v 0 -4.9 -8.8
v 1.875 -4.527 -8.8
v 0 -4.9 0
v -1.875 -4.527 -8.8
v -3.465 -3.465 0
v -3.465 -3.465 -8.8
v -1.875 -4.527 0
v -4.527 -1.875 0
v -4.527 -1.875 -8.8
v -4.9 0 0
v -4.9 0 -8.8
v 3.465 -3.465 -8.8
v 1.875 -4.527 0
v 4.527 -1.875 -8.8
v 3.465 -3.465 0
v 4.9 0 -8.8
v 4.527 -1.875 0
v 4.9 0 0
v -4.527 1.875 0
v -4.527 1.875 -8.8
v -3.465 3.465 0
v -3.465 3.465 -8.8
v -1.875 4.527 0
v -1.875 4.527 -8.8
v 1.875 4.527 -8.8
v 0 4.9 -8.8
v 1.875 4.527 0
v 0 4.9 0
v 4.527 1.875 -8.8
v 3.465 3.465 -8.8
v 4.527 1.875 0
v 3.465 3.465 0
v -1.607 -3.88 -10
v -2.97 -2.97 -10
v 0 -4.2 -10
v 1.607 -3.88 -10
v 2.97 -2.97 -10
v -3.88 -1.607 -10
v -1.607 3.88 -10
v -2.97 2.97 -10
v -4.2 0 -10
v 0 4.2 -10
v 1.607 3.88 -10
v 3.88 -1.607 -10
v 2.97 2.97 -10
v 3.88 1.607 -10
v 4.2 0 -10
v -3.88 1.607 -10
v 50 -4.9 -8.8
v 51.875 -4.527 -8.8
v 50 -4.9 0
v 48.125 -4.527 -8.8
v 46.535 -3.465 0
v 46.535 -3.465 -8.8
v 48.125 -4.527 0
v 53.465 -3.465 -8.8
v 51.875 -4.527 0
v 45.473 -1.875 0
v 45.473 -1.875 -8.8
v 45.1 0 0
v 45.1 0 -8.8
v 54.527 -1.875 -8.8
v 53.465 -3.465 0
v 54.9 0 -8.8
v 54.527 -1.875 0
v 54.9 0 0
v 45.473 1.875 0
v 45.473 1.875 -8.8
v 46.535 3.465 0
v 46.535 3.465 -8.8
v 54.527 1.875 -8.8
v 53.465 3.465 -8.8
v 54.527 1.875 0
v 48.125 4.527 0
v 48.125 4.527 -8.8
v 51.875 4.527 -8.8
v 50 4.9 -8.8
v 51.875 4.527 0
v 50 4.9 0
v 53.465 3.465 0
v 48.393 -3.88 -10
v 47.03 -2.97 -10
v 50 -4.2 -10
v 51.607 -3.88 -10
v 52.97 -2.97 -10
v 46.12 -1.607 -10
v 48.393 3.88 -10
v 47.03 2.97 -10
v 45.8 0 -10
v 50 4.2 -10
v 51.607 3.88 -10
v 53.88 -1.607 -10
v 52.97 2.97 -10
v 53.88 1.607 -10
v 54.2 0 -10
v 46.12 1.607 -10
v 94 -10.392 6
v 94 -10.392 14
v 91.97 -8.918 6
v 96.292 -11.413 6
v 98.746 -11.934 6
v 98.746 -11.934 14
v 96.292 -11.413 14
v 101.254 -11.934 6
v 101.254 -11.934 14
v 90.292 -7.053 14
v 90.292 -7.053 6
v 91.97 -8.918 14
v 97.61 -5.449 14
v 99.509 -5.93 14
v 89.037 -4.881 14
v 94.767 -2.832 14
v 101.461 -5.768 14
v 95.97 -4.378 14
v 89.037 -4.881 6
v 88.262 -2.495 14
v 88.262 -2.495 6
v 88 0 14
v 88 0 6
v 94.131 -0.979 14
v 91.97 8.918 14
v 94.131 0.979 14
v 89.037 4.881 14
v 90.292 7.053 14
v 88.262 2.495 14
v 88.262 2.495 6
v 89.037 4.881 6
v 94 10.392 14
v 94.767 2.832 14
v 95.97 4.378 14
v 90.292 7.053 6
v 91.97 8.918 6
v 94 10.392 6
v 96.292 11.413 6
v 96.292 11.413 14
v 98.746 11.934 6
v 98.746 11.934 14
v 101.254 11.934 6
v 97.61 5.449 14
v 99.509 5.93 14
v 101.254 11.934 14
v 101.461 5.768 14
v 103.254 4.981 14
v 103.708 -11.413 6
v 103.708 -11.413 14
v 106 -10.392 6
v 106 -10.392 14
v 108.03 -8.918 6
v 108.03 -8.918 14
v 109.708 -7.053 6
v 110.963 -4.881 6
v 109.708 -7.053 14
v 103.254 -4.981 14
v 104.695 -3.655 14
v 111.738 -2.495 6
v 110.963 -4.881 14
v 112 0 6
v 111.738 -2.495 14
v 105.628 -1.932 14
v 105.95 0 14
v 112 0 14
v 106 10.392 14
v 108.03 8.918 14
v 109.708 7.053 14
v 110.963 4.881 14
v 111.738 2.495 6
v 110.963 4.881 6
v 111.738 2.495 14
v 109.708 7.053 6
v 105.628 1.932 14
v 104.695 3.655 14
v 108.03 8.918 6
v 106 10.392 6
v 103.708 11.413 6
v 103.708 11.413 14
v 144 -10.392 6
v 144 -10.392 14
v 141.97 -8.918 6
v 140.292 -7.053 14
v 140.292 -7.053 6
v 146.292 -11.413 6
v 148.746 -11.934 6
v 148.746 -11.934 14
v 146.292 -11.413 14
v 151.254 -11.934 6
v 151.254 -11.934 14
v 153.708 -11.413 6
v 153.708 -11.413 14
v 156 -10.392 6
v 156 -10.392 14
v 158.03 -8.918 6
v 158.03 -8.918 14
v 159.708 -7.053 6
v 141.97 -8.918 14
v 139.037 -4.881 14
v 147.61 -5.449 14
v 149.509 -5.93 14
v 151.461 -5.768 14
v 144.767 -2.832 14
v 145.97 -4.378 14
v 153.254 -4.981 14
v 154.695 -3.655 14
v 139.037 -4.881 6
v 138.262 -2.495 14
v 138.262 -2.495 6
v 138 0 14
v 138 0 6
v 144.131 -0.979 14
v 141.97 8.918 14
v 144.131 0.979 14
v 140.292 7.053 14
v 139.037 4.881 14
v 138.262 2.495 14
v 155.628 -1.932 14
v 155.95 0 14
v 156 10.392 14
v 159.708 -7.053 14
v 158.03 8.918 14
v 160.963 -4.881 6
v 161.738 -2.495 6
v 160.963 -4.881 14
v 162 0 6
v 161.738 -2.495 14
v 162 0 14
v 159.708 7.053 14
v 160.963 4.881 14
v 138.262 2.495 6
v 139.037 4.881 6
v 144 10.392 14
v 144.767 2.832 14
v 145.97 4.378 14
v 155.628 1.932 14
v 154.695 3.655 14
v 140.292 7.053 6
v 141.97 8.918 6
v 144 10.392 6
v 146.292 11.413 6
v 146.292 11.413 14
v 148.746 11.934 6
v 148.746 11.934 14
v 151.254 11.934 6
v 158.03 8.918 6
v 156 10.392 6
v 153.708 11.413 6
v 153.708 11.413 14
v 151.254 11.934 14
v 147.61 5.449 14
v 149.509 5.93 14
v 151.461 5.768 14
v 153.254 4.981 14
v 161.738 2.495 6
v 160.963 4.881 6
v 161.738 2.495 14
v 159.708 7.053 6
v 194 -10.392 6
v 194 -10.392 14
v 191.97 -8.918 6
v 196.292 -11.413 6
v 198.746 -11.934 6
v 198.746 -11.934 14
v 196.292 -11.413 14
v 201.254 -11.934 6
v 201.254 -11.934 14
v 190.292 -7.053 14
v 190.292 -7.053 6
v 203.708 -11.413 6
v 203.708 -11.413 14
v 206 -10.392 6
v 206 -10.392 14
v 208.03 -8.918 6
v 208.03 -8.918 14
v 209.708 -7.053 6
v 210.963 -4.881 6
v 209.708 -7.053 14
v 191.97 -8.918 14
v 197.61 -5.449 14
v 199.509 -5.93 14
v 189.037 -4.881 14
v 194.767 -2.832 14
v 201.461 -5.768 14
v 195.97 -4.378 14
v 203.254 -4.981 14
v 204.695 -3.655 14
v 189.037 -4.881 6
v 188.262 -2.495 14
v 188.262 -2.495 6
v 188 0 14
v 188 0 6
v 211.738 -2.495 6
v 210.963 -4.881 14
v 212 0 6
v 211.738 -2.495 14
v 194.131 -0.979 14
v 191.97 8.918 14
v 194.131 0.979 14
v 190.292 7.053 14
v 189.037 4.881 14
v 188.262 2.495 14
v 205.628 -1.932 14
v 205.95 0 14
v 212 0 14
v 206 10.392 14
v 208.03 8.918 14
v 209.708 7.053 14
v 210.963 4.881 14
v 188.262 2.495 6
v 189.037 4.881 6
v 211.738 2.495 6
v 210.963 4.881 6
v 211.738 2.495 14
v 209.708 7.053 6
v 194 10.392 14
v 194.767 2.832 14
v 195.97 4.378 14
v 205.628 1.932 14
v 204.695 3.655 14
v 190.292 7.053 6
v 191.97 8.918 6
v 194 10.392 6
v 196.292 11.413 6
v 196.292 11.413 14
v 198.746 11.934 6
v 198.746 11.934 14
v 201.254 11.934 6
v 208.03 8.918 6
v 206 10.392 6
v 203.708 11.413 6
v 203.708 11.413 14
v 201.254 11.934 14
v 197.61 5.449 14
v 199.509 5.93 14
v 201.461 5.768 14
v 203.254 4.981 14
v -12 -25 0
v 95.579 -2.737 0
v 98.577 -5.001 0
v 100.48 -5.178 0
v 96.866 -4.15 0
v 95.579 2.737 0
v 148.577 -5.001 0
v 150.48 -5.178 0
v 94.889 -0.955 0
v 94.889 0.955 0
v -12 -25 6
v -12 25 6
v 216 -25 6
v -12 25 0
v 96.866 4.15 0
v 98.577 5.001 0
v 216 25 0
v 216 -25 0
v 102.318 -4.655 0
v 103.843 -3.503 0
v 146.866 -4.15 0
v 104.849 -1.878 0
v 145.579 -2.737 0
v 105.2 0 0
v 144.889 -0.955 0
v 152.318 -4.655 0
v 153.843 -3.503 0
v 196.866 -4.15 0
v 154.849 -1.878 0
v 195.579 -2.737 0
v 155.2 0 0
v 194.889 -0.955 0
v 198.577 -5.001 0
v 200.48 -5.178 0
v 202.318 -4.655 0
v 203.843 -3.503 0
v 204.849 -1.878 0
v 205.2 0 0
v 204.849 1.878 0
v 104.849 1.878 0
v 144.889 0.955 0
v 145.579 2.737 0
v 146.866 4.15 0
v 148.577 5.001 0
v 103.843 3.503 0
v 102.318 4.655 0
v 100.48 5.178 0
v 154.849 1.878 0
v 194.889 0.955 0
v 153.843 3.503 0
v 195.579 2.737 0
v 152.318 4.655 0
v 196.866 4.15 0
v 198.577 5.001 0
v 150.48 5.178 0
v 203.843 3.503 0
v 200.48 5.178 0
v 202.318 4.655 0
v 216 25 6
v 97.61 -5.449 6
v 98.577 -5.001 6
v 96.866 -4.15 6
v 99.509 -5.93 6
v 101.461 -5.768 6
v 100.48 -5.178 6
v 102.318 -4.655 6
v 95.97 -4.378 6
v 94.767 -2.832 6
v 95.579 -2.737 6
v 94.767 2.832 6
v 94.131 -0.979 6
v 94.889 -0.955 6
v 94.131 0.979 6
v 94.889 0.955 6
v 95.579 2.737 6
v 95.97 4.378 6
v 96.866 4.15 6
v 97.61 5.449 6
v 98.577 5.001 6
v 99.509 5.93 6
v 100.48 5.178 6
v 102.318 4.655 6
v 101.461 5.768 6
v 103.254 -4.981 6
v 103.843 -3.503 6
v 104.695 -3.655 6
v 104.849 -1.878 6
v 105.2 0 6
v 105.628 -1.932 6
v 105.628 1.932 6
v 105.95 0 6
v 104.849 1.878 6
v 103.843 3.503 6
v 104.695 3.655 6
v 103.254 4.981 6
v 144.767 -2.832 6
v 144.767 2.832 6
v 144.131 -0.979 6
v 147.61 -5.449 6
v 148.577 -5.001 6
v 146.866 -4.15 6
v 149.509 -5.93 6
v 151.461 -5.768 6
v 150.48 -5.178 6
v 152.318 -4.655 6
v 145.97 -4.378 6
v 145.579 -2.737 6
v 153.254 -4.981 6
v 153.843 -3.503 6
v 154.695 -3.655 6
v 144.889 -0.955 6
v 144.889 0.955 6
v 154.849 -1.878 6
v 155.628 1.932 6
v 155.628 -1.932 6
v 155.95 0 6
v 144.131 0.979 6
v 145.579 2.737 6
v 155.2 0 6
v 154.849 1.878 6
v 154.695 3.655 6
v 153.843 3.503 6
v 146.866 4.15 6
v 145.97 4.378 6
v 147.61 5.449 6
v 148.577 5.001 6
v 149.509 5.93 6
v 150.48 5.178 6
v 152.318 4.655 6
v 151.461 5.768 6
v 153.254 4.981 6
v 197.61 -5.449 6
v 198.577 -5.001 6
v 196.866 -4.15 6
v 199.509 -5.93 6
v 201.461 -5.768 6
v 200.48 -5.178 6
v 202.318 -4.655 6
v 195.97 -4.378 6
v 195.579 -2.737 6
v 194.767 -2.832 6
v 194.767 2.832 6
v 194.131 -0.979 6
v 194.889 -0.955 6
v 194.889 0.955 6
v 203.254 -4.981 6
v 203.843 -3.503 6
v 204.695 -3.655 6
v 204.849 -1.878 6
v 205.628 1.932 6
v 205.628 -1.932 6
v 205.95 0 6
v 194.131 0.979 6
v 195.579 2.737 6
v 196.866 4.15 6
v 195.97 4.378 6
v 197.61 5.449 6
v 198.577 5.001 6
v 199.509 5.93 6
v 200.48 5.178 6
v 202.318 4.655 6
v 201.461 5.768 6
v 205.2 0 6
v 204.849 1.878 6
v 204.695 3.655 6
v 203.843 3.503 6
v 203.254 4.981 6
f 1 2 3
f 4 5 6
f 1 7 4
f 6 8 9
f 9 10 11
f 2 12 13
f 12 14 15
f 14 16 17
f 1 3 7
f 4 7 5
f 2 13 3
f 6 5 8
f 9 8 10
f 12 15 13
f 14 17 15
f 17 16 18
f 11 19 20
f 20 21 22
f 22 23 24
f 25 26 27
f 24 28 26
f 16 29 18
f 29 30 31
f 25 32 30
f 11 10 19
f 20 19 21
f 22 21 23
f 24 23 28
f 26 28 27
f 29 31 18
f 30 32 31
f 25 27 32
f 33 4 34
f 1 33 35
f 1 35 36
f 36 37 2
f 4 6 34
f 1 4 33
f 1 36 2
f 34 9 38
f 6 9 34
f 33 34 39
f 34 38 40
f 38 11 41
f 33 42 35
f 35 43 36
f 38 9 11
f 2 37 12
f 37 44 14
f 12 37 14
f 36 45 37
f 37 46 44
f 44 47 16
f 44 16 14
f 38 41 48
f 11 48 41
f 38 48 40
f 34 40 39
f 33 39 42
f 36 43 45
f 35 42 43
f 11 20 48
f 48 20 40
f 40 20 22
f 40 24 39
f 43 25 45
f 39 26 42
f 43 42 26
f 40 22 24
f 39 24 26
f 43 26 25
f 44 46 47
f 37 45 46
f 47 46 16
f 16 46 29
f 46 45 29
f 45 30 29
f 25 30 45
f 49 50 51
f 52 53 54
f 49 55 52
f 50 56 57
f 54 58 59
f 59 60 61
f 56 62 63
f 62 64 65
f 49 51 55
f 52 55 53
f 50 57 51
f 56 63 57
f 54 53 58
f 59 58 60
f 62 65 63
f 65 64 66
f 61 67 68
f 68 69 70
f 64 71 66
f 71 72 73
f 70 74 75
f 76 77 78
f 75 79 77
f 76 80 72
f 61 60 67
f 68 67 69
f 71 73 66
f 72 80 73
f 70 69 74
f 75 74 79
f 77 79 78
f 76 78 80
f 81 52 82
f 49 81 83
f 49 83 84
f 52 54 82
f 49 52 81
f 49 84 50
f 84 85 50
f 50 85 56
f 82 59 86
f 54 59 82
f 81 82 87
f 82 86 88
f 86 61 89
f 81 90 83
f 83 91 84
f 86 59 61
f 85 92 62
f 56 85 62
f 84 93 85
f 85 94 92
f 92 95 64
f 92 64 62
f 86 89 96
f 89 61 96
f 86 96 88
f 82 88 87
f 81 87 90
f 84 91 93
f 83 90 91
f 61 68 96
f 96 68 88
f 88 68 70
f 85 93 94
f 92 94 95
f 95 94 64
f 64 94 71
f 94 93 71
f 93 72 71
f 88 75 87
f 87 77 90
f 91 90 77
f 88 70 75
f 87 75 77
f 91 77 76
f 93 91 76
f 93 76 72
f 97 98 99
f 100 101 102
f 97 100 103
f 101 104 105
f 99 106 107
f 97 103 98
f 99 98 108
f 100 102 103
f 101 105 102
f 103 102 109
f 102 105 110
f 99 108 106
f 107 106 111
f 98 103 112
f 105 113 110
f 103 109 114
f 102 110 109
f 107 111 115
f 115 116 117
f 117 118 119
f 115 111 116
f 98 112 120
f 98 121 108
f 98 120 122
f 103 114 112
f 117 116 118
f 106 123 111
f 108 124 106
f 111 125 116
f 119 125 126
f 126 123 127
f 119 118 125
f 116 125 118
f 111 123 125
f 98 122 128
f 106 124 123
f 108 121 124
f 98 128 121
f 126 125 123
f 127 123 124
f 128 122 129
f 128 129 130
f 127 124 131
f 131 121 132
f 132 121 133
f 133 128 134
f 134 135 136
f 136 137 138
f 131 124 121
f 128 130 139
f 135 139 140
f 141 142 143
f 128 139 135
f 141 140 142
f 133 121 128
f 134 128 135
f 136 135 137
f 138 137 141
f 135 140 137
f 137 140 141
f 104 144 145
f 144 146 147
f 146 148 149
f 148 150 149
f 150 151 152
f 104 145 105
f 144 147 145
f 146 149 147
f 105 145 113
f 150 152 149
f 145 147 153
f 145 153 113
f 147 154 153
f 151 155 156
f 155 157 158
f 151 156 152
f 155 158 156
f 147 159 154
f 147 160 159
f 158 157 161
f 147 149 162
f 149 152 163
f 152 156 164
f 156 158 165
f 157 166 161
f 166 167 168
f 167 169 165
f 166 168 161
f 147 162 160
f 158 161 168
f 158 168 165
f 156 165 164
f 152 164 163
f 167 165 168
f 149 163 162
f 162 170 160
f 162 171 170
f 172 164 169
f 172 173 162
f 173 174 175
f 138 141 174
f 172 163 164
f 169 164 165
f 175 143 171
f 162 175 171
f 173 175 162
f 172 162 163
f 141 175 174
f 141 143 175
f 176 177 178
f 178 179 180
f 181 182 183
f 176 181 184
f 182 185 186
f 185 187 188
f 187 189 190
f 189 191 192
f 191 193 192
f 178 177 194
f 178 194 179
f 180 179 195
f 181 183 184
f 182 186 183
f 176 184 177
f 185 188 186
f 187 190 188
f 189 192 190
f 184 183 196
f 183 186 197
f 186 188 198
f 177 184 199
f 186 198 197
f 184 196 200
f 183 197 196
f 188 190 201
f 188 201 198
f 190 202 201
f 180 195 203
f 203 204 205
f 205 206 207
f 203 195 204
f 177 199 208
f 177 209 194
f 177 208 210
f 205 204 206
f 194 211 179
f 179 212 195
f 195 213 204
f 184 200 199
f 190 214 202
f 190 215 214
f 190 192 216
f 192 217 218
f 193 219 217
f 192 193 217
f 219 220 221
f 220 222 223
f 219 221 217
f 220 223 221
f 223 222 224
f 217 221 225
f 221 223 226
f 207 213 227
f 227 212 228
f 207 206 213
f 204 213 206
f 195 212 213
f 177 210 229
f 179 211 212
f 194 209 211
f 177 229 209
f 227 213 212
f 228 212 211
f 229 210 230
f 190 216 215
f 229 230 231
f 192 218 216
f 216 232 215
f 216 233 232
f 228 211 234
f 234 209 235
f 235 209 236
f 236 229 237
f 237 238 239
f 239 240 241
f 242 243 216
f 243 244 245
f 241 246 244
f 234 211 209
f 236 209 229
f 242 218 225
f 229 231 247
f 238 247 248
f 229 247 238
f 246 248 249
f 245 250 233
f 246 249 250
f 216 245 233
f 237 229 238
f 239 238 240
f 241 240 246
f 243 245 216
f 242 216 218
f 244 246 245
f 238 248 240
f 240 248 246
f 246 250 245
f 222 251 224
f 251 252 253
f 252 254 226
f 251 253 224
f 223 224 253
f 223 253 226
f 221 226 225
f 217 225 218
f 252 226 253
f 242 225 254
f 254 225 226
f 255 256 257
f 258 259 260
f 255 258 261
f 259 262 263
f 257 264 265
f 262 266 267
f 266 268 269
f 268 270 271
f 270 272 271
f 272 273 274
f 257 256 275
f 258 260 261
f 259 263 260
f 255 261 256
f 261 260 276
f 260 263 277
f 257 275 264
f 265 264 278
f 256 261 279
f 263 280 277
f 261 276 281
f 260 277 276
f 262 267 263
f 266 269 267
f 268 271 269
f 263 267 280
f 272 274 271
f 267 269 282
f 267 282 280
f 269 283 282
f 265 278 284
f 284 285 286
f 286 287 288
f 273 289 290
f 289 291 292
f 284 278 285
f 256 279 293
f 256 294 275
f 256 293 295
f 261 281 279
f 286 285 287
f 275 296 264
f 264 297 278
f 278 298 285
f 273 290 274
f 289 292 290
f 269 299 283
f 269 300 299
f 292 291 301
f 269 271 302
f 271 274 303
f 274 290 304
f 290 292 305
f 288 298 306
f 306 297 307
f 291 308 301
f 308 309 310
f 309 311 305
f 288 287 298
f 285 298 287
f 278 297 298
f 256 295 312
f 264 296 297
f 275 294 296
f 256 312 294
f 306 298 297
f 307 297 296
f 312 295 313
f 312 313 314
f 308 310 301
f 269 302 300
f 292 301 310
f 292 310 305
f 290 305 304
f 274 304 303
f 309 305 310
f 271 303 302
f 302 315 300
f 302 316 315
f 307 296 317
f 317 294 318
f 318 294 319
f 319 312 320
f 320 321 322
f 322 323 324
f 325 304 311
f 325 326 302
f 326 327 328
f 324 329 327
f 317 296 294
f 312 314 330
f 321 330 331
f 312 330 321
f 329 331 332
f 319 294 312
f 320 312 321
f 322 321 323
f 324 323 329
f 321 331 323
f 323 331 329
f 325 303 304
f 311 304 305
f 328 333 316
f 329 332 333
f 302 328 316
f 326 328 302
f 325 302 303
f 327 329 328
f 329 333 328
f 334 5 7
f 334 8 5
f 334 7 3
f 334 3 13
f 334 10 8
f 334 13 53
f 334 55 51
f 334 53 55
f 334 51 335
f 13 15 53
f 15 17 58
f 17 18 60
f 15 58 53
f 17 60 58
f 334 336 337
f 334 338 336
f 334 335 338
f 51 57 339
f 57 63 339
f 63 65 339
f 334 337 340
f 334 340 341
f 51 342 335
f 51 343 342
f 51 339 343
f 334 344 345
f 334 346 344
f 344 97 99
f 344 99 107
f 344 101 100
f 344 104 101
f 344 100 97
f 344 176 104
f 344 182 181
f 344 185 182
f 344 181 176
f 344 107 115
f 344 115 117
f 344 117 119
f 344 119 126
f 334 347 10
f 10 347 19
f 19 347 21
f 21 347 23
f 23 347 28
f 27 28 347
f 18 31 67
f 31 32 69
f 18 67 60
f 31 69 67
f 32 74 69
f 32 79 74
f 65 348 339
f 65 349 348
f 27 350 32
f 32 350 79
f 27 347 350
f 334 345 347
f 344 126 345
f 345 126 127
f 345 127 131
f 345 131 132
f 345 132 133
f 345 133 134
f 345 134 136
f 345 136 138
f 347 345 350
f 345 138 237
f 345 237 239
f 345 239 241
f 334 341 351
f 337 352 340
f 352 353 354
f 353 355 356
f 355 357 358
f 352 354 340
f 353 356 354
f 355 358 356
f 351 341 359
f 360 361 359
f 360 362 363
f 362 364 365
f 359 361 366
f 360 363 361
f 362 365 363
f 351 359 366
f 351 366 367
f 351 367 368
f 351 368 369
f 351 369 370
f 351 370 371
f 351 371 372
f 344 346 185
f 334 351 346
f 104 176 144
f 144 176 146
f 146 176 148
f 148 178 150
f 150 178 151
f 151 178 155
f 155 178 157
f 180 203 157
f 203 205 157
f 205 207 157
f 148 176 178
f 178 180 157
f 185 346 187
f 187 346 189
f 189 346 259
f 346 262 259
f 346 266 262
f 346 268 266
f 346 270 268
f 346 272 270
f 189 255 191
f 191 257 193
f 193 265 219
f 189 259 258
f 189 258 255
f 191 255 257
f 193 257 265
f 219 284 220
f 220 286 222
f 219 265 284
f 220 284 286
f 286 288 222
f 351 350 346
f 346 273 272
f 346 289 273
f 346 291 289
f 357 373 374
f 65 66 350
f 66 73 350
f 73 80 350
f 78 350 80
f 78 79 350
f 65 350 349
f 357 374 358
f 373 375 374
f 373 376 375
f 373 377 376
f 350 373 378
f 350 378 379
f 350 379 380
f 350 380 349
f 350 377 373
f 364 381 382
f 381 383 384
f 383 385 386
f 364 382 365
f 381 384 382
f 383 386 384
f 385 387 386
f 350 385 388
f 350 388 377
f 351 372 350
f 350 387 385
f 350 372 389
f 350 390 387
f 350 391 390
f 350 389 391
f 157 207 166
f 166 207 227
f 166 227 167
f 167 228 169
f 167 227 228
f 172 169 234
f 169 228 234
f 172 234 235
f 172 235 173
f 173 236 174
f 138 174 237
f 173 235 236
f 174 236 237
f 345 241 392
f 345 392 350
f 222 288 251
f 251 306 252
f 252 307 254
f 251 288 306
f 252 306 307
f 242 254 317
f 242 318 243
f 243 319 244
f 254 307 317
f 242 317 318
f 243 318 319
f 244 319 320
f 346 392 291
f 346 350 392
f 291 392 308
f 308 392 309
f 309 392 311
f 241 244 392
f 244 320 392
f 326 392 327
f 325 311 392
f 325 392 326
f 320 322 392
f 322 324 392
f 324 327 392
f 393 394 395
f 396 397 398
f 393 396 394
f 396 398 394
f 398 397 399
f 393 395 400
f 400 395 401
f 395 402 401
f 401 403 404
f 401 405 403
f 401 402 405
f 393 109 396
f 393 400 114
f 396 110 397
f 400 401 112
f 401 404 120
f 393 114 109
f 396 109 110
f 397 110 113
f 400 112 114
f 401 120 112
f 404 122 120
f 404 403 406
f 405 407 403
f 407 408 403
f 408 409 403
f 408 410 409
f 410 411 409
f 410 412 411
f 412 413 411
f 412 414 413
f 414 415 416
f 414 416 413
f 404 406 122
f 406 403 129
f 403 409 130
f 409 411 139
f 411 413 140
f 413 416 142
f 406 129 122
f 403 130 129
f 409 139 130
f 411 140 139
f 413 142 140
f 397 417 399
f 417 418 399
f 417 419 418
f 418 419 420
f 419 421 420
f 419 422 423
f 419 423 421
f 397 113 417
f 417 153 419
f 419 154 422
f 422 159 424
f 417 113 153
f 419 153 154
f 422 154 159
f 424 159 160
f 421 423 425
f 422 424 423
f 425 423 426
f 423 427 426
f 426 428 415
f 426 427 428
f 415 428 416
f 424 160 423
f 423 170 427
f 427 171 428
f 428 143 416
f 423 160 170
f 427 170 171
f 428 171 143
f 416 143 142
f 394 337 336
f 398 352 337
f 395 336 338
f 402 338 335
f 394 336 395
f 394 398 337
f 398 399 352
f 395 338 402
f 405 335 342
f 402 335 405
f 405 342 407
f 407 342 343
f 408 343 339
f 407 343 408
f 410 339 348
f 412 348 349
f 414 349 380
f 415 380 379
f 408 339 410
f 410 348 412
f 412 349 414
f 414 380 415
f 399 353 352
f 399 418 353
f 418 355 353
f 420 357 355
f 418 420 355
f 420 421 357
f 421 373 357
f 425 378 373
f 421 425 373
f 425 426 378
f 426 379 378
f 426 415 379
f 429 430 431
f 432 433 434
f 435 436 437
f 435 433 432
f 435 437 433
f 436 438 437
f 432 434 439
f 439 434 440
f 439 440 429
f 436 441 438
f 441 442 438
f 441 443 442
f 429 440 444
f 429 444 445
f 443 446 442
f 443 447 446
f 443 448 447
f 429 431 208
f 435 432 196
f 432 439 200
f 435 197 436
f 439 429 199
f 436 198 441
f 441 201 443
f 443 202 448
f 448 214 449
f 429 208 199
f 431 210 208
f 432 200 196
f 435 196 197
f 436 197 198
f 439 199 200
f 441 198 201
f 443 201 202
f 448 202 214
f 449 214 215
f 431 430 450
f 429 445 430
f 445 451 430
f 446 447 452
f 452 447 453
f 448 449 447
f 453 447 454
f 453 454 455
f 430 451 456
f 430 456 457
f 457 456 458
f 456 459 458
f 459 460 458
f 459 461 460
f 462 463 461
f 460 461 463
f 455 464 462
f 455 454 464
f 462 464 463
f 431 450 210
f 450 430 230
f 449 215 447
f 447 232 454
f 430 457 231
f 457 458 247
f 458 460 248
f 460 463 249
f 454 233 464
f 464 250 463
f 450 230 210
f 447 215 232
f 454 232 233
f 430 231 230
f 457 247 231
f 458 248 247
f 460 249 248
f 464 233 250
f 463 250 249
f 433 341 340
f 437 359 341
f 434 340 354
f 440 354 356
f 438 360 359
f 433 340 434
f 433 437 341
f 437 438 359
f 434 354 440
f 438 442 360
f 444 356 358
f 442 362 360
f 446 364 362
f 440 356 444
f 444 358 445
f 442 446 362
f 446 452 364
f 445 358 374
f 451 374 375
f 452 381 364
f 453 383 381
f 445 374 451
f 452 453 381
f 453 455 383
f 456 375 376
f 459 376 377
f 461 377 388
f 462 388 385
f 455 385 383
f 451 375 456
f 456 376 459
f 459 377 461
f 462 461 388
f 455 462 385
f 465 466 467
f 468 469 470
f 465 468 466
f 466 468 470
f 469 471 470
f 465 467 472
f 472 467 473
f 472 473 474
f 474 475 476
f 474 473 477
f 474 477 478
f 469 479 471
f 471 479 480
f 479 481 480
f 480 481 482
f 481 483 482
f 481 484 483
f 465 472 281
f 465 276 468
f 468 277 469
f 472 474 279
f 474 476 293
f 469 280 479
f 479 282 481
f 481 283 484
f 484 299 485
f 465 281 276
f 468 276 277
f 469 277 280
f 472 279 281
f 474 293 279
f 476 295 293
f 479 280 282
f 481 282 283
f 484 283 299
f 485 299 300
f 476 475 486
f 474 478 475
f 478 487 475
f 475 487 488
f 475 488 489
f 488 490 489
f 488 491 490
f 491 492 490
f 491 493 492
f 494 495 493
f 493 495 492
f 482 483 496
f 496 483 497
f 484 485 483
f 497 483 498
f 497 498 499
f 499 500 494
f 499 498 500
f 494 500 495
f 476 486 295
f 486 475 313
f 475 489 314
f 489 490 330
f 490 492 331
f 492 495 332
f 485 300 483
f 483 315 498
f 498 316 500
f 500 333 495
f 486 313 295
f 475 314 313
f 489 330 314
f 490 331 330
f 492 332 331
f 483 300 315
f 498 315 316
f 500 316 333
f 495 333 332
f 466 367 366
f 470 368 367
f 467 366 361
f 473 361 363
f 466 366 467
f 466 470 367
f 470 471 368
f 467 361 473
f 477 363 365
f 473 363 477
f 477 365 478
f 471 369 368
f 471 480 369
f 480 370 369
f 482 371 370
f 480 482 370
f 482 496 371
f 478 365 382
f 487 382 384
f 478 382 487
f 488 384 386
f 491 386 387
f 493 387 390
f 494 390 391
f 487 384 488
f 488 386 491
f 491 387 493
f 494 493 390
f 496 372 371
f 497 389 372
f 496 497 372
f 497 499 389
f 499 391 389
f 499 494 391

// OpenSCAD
// ============================================================================
//  INDEXING BAR — repeats the 50mm hole pattern along a row or column
//  For drilling the hole grid of an 18mm plywood pegboard panel.
//
//  Pattern assumed: 10mm holes on a 50mm grid.
//
//  Coordinate convention (matches the other jigs in this folder):
//    - Panel top surface  = z = 0   (bar base sits on this plane)
//    - Bar axis            = local +x   (bar width along y, centred on y = 0)
//    - Locating pins hang BELOW the base (z < 0) and drop into drilled holes.
//
//  Layout along the bar — five stations on one 50mm pitch:
//      x = 0      locating pin 1
//      x = 50     locating pin 2
//      x = 100    drill guide 1
//      x = 150    drill guide 2
//      x = 200    drill guide 3
//
//  How it works (row-major example):
//    1. Drop the two pins into two adjacent holes that are already drilled
//       (the seed pair from the corner jig or the row seeder).
//    2. Drill through the three bush-guided holes -> three new holes.
//    3. Lift the bar, move it forward, and re-seat the pins in the TWO MOST
//       RECENTLY DRILLED holes (i.e. leapfrog 150mm each step).
//    4. Repeat to the end of the row. Flip the bar end-for-end to walk the
//       other direction; rotate it 90 deg to index a column instead.
//
//  NOTE: needs ~230mm of print bed in X for 3 guides (~180mm for 2).
//  All dimensions are parameters below.
//
//  PRINT: FLIP the part upside-down before slicing so the pins point UP.
//  Pins then print last as clean vertical posts — no supports, no brim
//  needed for the pins (a brim is still cheap insurance on the bosses).
// ============================================================================

// ------------------------- PATTERN -------------------------
pitch   = 50;    // [mm] hole grid spacing
hole_d  = 10;    // [mm] drilled hole / bit size (for reference)

// --------------------- LOCATING PINS (underside) --------------------
// Pins drop into already-drilled holes. Slightly undersized for a snug fit.
pin_d      = 9.8;  // [mm] pin diameter — snug in a 10mm hole.
                   //   rattly -> try 9.9 ;  won't enter -> try 9.5
pin_len    = 10;   // [mm] pin engagement depth below the base
pin_embed  = 3;    // [mm] pin root embedded inside the base
chamfer_h  = 1.2;  // [mm] lead-in chamfer height at the pin tip
chamfer_d  = 0.7;  // [mm] radial chamfer size at the pin tip

// --------------------- DRILL GUIDES / METAL BUSH --------------------
// Bush: 12mm OD, 10mm ID for a 10mm drill bit.
bush_od     = 12;    // [mm] bush outside diameter (reference only)
bush_hole_d = 11.9;  // [mm] seat diameter — press fit into PLA/PETG.
                     //   too tight  -> try 11.7
                     //   slip+glue  -> try 12.1
bit_clear_d = 10.4;  // [mm] bit clearance hole (0.2mm/side)
bush_seat_h = 8;     // [mm] counterbore depth inside the boss
boss_od     = 24;    // [mm] boss diameter around each guide
boss_h      = 8;     // [mm] boss height above the base

// ------------------------------ BODY -------------------------------
base_t   = 6;               // [mm] base plate thickness
bar_w    = 50;              // [mm] bar width
start_m  = 12;              // [mm] margin before the first pin
guide_count = 3;            // [count] drill guides on the bar.
                            //   3 -> ~230mm long (needs a big bed)
                            //   2 -> ~180mm long (fits A1-mini class beds)
end_m    = boss_od / 2 + 4; // [mm] margin after the last guide boss

// ---------------------------- COMPUTED -----------------------------
pin_xs   = [0, pitch];                    // pin stations
lead_x   = 2 * pitch;                     // first guide station
guide_xs = [for (i = [0 : guide_count - 1]) lead_x + i * pitch];
x_min    = -start_m;
x_max    = guide_xs[guide_count - 1] + end_m;

assert(pin_d < hole_d, "pins must be smaller than the drilled holes");
assert(guide_count >= 2, "need at least 2 guides so the leapfrog always works");
assert(bush_hole_d > bit_clear_d, "bush seat must be larger than bit clearance");
assert(bush_seat_h <= boss_h, "bush seat deeper than boss");

module locating_pin(x) {
    // shaft: z from -pin_len + chamfer_h up to +pin_embed
    translate([x, 0, -pin_len + chamfer_h])
        cylinder(d = pin_d, h = pin_len + pin_embed - chamfer_h);
    // lead-in chamfer: z from -pin_len up to -pin_len + chamfer_h
    translate([x, 0, -pin_len])
        cylinder(d1 = pin_d - 2 * chamfer_d, d2 = pin_d, h = chamfer_h);
}

module indexing_bar() {
    difference() {
        union() {
            // ---- base plate ----
            translate([x_min, -bar_w / 2, 0])
                cube([x_max - x_min, bar_w, base_t]);

            // ---- locating pins (point down into the holes) ----
            for (px = pin_xs) locating_pin(px);

            // ---- guide bosses ----
            for (gx = guide_xs)
                translate([gx, 0, base_t])
                    cylinder(d = boss_od, h = boss_h);
        }

        // ---- stepped guide holes: bush seat on top, bit clearance below ----
        for (gx = guide_xs) {
            translate([gx, 0, base_t + boss_h - bush_seat_h])
                cylinder(d = bush_hole_d, h = bush_seat_h + 0.02);
            translate([gx, 0, -0.01])
                cylinder(d = bit_clear_d, h = base_t + boss_h + 0.02);
        }
    }
}

indexing_bar();
